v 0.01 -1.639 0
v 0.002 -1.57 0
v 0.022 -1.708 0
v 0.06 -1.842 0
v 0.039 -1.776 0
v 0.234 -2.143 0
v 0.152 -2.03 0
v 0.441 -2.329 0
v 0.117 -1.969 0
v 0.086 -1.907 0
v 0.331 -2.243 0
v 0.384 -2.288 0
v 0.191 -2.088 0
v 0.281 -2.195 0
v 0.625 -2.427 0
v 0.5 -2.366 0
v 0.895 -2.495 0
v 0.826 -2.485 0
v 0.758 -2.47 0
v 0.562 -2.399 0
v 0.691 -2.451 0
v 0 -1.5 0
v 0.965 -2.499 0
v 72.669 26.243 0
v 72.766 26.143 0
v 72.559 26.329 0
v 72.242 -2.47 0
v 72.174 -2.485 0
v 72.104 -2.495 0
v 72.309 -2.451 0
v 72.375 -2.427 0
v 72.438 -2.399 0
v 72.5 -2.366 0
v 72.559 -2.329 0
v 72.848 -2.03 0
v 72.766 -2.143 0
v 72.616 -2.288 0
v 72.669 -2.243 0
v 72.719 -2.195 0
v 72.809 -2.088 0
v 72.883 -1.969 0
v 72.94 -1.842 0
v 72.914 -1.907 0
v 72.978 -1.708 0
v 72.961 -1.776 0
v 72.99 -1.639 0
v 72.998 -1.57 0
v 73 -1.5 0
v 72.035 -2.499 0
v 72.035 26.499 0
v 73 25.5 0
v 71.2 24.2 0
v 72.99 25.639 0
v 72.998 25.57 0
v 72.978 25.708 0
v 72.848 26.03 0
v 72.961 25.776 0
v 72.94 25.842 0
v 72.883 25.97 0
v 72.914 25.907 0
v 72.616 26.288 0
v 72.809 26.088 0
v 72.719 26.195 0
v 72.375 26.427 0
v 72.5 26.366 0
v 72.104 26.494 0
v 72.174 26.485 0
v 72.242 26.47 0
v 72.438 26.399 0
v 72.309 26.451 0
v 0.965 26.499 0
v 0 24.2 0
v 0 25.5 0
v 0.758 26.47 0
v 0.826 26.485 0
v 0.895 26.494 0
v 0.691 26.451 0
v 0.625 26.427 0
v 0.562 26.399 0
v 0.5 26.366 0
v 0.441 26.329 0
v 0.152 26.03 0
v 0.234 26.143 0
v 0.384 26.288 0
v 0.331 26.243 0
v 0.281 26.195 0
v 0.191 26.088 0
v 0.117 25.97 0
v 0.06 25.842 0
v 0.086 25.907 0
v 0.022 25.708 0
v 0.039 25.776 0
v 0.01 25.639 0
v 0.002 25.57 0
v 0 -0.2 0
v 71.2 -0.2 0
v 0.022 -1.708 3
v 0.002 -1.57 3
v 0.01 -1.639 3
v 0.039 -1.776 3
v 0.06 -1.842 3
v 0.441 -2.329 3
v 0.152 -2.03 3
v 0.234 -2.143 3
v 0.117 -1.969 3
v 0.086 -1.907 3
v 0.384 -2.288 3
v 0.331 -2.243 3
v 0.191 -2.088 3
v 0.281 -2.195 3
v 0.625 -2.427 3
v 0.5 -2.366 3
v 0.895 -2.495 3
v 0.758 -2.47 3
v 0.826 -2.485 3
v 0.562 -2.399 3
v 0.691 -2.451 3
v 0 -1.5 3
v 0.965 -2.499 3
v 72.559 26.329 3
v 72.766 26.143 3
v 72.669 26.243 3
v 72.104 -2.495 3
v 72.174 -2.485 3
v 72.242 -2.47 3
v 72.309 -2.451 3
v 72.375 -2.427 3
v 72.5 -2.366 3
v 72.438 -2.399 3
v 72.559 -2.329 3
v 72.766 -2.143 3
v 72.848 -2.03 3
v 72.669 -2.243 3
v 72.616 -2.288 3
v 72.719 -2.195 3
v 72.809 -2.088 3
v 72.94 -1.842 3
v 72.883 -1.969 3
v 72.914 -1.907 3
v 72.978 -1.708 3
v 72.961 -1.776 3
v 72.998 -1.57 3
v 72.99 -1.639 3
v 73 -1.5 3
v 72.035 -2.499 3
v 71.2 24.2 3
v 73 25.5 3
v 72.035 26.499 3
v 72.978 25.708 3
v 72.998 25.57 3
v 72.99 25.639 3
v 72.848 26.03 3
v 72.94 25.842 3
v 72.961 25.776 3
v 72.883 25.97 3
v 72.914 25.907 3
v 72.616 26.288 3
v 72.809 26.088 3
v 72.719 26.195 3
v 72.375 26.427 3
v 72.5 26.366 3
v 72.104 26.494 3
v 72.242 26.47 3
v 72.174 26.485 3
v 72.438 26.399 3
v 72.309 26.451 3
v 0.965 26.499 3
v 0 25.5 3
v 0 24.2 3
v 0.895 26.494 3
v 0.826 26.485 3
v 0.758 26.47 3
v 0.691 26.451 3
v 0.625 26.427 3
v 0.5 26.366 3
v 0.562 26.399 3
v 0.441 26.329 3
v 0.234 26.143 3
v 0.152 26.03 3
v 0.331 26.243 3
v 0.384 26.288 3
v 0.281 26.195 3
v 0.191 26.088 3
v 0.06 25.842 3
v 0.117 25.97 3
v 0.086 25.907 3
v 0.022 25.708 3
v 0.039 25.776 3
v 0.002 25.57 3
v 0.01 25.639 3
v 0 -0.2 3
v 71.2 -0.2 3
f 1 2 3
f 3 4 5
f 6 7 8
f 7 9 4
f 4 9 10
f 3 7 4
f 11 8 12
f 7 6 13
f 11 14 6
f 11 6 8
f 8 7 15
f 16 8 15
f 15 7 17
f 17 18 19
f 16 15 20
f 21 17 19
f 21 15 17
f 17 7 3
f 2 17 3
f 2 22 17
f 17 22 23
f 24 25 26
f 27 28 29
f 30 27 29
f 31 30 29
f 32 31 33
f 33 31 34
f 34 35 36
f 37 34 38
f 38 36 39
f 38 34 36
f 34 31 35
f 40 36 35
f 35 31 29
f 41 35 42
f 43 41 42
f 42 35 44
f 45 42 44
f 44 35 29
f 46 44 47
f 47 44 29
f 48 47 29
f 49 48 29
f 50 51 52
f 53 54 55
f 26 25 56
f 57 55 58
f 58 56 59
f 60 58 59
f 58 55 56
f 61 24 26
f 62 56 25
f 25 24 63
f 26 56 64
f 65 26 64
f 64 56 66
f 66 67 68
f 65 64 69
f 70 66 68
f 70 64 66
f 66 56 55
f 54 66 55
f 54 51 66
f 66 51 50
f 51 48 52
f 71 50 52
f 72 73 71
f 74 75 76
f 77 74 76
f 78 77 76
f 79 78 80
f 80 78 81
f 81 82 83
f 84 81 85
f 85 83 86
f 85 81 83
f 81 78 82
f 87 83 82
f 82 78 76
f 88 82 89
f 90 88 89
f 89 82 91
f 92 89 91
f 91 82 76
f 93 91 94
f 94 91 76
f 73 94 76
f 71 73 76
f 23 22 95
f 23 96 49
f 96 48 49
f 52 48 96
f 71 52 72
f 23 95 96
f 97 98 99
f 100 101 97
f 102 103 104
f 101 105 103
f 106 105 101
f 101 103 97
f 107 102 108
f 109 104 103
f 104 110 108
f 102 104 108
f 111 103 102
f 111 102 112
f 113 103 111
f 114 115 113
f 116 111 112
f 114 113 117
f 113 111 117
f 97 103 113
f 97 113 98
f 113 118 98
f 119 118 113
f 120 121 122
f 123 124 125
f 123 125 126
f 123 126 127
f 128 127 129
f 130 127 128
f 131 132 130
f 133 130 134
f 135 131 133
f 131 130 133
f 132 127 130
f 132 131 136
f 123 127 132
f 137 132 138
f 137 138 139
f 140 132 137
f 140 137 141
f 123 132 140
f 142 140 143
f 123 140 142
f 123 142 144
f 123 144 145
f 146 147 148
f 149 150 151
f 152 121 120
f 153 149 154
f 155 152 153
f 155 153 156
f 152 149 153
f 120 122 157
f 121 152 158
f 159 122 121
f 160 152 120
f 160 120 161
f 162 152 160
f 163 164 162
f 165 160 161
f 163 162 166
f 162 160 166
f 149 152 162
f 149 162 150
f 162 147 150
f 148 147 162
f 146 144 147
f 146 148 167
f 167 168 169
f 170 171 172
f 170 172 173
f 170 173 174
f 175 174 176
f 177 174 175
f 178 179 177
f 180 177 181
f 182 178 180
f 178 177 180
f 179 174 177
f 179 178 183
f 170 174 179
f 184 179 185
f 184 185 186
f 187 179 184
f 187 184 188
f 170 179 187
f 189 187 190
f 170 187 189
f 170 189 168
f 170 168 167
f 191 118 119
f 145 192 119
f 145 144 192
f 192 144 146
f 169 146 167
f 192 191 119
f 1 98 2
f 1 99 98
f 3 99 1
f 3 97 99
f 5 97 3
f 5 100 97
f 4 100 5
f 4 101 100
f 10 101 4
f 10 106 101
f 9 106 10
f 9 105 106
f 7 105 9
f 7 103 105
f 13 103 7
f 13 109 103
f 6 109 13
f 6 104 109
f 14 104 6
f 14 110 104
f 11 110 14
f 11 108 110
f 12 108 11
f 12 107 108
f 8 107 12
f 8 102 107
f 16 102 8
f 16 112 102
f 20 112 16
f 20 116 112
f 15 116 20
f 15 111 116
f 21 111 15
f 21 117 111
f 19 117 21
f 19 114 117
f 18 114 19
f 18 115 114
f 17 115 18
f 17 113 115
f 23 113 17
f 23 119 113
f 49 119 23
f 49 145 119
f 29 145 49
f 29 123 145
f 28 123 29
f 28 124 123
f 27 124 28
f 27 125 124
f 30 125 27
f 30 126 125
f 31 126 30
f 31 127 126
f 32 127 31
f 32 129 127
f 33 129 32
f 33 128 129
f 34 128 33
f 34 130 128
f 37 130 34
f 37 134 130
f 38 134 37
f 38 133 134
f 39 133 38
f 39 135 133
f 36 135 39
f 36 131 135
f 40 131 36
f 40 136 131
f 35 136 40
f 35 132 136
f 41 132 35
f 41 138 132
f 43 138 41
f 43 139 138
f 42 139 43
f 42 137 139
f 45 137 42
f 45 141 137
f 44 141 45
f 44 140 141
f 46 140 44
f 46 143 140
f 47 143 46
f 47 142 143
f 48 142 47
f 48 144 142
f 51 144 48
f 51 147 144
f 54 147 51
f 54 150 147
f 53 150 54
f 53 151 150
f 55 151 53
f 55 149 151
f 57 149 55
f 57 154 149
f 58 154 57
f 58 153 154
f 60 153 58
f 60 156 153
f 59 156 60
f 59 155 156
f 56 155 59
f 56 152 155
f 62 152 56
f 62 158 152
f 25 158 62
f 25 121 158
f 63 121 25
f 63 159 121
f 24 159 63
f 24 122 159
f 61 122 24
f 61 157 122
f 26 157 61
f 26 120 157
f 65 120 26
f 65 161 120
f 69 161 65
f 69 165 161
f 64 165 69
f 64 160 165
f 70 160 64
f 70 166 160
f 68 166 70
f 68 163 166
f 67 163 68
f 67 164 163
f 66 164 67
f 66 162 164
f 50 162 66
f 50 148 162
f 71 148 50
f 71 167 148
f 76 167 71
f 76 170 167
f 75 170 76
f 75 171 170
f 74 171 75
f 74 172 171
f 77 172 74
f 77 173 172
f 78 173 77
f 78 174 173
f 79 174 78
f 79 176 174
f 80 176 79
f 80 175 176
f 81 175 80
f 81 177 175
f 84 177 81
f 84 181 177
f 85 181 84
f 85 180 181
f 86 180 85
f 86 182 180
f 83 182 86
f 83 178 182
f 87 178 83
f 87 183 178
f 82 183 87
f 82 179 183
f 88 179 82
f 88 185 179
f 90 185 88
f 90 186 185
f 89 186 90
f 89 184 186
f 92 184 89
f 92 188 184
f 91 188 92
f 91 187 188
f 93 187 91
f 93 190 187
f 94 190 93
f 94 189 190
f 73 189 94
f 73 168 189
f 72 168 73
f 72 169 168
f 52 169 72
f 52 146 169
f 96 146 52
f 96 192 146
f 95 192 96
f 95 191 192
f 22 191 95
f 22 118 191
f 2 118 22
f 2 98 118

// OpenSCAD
// 1602 lcd filler
$fn=90;
linear_extrude(3) {
    difference() {
        translate([1,-1.5]) minkowski() {
            square([71,27]);
            circle(r=1);
        }
        translate([0,-0.2]) square([71.2,24.4]);
    }
}
